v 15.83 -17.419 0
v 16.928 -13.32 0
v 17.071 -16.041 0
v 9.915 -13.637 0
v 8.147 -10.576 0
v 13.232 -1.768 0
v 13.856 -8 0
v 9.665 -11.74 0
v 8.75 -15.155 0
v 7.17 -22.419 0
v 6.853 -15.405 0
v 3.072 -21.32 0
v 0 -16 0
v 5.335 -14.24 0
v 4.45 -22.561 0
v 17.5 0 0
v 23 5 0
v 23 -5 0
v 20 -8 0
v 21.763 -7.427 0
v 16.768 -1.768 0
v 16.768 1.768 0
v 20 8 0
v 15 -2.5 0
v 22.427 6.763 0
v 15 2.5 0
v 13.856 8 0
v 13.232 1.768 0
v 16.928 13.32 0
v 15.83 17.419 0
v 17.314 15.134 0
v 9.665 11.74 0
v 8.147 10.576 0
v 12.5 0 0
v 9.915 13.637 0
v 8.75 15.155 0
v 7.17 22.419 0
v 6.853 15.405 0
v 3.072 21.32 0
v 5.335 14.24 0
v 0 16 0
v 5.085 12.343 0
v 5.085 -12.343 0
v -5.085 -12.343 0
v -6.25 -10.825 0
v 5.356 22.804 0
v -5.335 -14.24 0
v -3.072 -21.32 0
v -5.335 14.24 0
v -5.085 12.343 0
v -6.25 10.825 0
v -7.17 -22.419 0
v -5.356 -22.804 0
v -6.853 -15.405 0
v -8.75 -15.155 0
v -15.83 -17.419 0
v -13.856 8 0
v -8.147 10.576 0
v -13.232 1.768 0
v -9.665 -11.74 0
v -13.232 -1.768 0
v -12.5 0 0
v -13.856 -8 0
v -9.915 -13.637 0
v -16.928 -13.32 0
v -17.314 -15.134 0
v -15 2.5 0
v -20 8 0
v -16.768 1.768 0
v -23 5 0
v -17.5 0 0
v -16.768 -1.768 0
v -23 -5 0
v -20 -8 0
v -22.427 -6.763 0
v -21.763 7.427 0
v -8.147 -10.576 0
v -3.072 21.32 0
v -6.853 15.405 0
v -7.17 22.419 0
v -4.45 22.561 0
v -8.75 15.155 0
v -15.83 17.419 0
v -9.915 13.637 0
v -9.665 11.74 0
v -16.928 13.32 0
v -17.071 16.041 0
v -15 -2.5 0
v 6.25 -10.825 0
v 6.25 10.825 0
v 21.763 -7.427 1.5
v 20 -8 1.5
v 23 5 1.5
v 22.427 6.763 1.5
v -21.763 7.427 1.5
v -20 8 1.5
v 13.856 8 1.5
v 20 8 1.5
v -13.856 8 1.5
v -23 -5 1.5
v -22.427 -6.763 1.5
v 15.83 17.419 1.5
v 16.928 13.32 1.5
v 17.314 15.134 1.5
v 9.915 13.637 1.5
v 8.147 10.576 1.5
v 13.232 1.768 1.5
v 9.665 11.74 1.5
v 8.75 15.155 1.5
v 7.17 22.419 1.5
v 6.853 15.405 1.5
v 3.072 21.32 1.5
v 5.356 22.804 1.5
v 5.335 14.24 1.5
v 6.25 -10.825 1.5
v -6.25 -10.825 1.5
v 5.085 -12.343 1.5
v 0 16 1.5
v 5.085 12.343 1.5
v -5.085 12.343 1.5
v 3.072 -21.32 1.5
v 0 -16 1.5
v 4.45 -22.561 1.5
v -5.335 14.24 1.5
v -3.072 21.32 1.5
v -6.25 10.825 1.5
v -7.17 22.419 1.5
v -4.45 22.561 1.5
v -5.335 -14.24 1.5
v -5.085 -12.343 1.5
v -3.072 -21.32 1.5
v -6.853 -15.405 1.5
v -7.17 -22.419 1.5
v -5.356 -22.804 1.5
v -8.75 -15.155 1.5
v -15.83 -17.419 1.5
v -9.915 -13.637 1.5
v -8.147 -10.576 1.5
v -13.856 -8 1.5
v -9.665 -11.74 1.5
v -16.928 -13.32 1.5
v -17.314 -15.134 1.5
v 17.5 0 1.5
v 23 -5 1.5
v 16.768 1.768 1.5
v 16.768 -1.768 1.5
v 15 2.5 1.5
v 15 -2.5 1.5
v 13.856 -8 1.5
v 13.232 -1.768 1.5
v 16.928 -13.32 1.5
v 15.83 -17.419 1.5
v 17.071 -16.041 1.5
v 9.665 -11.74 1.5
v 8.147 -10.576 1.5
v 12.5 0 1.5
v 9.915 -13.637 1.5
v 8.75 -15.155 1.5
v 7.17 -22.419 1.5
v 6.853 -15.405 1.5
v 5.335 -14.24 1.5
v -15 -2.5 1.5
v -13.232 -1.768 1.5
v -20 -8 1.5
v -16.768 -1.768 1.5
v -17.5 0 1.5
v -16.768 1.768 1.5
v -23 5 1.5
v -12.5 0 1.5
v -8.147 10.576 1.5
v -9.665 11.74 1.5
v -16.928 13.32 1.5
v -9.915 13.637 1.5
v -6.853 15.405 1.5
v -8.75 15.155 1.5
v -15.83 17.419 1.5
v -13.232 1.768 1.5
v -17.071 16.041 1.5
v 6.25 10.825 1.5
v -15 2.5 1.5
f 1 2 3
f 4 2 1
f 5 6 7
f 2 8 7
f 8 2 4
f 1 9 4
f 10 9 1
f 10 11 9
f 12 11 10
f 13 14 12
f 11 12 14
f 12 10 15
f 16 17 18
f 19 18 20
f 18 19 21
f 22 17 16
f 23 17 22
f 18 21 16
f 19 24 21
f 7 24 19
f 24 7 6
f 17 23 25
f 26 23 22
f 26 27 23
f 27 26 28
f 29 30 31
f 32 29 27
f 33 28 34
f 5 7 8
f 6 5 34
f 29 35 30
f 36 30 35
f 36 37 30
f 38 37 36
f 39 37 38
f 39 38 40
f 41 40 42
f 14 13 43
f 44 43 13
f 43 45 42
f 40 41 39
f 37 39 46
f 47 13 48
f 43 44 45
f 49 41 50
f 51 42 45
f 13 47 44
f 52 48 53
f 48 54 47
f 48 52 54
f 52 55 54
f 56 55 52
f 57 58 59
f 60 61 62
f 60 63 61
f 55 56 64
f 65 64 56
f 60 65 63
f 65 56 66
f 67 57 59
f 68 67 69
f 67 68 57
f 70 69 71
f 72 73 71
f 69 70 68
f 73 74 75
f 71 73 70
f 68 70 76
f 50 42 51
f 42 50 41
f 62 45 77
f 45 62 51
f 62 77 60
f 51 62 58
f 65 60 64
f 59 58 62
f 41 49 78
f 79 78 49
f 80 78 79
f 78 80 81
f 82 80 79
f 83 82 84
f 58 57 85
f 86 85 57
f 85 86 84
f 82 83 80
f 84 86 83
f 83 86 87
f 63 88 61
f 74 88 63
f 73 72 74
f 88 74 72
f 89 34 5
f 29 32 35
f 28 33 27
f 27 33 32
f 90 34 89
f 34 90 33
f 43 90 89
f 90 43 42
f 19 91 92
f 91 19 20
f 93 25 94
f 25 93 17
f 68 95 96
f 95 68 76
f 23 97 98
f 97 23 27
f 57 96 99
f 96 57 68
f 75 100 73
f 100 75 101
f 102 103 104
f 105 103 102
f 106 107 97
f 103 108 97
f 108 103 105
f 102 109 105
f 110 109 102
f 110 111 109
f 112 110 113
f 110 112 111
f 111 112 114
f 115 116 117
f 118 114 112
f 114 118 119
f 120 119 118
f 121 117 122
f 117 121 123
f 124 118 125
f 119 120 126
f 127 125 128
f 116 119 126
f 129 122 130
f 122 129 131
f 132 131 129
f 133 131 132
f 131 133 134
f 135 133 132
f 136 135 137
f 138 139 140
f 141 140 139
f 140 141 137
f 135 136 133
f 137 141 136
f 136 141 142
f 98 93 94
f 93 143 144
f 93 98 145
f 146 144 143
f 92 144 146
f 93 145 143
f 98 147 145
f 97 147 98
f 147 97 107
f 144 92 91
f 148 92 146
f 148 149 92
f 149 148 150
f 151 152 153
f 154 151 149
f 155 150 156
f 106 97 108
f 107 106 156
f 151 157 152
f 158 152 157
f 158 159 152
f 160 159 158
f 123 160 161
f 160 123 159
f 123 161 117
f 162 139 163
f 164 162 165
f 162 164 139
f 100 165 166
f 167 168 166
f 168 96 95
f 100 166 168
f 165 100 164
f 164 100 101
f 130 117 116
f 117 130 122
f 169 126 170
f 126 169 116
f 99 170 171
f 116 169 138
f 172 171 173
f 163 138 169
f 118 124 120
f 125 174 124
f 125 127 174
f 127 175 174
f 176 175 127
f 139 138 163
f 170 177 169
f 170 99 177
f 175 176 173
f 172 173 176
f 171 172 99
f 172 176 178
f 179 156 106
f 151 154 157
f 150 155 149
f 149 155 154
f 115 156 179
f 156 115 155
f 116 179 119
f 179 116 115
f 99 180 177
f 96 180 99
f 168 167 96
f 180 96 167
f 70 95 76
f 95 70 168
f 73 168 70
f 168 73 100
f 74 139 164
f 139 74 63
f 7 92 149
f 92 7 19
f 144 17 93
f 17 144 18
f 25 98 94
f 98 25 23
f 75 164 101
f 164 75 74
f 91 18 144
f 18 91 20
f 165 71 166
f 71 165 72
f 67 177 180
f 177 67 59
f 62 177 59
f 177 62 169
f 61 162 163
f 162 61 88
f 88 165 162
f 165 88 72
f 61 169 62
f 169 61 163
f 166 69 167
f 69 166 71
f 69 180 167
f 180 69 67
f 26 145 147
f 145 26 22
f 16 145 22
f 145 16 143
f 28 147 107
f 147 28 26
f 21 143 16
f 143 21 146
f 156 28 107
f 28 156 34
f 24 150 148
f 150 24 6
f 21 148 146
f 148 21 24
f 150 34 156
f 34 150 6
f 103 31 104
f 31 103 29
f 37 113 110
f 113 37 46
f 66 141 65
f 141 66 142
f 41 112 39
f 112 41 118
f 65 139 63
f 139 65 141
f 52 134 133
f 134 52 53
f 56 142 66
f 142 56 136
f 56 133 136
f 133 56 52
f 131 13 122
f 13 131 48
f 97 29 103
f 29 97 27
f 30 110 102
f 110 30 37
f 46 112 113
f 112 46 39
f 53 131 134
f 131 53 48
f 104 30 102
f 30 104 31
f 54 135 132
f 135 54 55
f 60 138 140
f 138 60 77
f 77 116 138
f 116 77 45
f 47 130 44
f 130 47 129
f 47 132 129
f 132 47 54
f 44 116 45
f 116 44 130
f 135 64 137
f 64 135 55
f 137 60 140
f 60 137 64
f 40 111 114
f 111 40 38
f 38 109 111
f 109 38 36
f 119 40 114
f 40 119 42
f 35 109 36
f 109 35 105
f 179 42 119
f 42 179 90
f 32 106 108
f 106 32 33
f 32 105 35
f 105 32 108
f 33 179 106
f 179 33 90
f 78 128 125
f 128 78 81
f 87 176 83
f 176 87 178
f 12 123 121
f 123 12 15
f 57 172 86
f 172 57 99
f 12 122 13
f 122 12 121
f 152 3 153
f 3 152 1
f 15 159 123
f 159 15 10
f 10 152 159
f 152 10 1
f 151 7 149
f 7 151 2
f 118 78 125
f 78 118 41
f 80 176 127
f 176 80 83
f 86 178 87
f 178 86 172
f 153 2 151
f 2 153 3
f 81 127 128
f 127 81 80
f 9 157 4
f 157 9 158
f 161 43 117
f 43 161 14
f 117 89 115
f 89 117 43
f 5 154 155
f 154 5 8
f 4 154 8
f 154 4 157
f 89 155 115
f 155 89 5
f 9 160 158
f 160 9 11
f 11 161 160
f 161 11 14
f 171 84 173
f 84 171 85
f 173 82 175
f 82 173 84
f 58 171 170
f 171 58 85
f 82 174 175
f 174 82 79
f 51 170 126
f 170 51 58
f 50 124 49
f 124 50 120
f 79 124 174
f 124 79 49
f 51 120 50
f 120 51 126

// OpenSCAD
// Parameters for the link plate
plate_length = 40; // Length of the plate
plate_width = 10;  // Width of the plate
plate_thickness = 1.5; // Thickness of the plate (reduced to match original model)
hole_diameter = 5; // Diameter of the holes
hole_spacing = 30; // Distance between the centers of the holes
curvature = 3; // Amount of curvature along the length (increased to match original model)

// Function to create a single link plate
module link_plate() {
    difference() {
        // Create the curved plate
        linear_extrude(height = plate_thickness) {
            offset(r = curvature) {
                square([plate_length, plate_width], center = true);
            }
        }
        // Create the holes
        translate([-hole_spacing / 2, 0, plate_thickness / 2])
            cylinder(r = hole_diameter / 2, h = plate_thickness, center = true);
        translate([hole_spacing / 2, 0, plate_thickness / 2])
            cylinder(r = hole_diameter / 2, h = plate_thickness, center = true);
    }
}

// Assemble the six link plates in a symmetrical arrangement
module flexible_coupling() {
    for (i = [0:5]) {
        rotate([0, 0, i * 60]) // Rotate each plate by 60 degrees
            translate([0, 0, 0]) // Keep all plates in the same vertical position
                link_plate();
    }
}

// Render the flexible coupling
flexible_coupling();
